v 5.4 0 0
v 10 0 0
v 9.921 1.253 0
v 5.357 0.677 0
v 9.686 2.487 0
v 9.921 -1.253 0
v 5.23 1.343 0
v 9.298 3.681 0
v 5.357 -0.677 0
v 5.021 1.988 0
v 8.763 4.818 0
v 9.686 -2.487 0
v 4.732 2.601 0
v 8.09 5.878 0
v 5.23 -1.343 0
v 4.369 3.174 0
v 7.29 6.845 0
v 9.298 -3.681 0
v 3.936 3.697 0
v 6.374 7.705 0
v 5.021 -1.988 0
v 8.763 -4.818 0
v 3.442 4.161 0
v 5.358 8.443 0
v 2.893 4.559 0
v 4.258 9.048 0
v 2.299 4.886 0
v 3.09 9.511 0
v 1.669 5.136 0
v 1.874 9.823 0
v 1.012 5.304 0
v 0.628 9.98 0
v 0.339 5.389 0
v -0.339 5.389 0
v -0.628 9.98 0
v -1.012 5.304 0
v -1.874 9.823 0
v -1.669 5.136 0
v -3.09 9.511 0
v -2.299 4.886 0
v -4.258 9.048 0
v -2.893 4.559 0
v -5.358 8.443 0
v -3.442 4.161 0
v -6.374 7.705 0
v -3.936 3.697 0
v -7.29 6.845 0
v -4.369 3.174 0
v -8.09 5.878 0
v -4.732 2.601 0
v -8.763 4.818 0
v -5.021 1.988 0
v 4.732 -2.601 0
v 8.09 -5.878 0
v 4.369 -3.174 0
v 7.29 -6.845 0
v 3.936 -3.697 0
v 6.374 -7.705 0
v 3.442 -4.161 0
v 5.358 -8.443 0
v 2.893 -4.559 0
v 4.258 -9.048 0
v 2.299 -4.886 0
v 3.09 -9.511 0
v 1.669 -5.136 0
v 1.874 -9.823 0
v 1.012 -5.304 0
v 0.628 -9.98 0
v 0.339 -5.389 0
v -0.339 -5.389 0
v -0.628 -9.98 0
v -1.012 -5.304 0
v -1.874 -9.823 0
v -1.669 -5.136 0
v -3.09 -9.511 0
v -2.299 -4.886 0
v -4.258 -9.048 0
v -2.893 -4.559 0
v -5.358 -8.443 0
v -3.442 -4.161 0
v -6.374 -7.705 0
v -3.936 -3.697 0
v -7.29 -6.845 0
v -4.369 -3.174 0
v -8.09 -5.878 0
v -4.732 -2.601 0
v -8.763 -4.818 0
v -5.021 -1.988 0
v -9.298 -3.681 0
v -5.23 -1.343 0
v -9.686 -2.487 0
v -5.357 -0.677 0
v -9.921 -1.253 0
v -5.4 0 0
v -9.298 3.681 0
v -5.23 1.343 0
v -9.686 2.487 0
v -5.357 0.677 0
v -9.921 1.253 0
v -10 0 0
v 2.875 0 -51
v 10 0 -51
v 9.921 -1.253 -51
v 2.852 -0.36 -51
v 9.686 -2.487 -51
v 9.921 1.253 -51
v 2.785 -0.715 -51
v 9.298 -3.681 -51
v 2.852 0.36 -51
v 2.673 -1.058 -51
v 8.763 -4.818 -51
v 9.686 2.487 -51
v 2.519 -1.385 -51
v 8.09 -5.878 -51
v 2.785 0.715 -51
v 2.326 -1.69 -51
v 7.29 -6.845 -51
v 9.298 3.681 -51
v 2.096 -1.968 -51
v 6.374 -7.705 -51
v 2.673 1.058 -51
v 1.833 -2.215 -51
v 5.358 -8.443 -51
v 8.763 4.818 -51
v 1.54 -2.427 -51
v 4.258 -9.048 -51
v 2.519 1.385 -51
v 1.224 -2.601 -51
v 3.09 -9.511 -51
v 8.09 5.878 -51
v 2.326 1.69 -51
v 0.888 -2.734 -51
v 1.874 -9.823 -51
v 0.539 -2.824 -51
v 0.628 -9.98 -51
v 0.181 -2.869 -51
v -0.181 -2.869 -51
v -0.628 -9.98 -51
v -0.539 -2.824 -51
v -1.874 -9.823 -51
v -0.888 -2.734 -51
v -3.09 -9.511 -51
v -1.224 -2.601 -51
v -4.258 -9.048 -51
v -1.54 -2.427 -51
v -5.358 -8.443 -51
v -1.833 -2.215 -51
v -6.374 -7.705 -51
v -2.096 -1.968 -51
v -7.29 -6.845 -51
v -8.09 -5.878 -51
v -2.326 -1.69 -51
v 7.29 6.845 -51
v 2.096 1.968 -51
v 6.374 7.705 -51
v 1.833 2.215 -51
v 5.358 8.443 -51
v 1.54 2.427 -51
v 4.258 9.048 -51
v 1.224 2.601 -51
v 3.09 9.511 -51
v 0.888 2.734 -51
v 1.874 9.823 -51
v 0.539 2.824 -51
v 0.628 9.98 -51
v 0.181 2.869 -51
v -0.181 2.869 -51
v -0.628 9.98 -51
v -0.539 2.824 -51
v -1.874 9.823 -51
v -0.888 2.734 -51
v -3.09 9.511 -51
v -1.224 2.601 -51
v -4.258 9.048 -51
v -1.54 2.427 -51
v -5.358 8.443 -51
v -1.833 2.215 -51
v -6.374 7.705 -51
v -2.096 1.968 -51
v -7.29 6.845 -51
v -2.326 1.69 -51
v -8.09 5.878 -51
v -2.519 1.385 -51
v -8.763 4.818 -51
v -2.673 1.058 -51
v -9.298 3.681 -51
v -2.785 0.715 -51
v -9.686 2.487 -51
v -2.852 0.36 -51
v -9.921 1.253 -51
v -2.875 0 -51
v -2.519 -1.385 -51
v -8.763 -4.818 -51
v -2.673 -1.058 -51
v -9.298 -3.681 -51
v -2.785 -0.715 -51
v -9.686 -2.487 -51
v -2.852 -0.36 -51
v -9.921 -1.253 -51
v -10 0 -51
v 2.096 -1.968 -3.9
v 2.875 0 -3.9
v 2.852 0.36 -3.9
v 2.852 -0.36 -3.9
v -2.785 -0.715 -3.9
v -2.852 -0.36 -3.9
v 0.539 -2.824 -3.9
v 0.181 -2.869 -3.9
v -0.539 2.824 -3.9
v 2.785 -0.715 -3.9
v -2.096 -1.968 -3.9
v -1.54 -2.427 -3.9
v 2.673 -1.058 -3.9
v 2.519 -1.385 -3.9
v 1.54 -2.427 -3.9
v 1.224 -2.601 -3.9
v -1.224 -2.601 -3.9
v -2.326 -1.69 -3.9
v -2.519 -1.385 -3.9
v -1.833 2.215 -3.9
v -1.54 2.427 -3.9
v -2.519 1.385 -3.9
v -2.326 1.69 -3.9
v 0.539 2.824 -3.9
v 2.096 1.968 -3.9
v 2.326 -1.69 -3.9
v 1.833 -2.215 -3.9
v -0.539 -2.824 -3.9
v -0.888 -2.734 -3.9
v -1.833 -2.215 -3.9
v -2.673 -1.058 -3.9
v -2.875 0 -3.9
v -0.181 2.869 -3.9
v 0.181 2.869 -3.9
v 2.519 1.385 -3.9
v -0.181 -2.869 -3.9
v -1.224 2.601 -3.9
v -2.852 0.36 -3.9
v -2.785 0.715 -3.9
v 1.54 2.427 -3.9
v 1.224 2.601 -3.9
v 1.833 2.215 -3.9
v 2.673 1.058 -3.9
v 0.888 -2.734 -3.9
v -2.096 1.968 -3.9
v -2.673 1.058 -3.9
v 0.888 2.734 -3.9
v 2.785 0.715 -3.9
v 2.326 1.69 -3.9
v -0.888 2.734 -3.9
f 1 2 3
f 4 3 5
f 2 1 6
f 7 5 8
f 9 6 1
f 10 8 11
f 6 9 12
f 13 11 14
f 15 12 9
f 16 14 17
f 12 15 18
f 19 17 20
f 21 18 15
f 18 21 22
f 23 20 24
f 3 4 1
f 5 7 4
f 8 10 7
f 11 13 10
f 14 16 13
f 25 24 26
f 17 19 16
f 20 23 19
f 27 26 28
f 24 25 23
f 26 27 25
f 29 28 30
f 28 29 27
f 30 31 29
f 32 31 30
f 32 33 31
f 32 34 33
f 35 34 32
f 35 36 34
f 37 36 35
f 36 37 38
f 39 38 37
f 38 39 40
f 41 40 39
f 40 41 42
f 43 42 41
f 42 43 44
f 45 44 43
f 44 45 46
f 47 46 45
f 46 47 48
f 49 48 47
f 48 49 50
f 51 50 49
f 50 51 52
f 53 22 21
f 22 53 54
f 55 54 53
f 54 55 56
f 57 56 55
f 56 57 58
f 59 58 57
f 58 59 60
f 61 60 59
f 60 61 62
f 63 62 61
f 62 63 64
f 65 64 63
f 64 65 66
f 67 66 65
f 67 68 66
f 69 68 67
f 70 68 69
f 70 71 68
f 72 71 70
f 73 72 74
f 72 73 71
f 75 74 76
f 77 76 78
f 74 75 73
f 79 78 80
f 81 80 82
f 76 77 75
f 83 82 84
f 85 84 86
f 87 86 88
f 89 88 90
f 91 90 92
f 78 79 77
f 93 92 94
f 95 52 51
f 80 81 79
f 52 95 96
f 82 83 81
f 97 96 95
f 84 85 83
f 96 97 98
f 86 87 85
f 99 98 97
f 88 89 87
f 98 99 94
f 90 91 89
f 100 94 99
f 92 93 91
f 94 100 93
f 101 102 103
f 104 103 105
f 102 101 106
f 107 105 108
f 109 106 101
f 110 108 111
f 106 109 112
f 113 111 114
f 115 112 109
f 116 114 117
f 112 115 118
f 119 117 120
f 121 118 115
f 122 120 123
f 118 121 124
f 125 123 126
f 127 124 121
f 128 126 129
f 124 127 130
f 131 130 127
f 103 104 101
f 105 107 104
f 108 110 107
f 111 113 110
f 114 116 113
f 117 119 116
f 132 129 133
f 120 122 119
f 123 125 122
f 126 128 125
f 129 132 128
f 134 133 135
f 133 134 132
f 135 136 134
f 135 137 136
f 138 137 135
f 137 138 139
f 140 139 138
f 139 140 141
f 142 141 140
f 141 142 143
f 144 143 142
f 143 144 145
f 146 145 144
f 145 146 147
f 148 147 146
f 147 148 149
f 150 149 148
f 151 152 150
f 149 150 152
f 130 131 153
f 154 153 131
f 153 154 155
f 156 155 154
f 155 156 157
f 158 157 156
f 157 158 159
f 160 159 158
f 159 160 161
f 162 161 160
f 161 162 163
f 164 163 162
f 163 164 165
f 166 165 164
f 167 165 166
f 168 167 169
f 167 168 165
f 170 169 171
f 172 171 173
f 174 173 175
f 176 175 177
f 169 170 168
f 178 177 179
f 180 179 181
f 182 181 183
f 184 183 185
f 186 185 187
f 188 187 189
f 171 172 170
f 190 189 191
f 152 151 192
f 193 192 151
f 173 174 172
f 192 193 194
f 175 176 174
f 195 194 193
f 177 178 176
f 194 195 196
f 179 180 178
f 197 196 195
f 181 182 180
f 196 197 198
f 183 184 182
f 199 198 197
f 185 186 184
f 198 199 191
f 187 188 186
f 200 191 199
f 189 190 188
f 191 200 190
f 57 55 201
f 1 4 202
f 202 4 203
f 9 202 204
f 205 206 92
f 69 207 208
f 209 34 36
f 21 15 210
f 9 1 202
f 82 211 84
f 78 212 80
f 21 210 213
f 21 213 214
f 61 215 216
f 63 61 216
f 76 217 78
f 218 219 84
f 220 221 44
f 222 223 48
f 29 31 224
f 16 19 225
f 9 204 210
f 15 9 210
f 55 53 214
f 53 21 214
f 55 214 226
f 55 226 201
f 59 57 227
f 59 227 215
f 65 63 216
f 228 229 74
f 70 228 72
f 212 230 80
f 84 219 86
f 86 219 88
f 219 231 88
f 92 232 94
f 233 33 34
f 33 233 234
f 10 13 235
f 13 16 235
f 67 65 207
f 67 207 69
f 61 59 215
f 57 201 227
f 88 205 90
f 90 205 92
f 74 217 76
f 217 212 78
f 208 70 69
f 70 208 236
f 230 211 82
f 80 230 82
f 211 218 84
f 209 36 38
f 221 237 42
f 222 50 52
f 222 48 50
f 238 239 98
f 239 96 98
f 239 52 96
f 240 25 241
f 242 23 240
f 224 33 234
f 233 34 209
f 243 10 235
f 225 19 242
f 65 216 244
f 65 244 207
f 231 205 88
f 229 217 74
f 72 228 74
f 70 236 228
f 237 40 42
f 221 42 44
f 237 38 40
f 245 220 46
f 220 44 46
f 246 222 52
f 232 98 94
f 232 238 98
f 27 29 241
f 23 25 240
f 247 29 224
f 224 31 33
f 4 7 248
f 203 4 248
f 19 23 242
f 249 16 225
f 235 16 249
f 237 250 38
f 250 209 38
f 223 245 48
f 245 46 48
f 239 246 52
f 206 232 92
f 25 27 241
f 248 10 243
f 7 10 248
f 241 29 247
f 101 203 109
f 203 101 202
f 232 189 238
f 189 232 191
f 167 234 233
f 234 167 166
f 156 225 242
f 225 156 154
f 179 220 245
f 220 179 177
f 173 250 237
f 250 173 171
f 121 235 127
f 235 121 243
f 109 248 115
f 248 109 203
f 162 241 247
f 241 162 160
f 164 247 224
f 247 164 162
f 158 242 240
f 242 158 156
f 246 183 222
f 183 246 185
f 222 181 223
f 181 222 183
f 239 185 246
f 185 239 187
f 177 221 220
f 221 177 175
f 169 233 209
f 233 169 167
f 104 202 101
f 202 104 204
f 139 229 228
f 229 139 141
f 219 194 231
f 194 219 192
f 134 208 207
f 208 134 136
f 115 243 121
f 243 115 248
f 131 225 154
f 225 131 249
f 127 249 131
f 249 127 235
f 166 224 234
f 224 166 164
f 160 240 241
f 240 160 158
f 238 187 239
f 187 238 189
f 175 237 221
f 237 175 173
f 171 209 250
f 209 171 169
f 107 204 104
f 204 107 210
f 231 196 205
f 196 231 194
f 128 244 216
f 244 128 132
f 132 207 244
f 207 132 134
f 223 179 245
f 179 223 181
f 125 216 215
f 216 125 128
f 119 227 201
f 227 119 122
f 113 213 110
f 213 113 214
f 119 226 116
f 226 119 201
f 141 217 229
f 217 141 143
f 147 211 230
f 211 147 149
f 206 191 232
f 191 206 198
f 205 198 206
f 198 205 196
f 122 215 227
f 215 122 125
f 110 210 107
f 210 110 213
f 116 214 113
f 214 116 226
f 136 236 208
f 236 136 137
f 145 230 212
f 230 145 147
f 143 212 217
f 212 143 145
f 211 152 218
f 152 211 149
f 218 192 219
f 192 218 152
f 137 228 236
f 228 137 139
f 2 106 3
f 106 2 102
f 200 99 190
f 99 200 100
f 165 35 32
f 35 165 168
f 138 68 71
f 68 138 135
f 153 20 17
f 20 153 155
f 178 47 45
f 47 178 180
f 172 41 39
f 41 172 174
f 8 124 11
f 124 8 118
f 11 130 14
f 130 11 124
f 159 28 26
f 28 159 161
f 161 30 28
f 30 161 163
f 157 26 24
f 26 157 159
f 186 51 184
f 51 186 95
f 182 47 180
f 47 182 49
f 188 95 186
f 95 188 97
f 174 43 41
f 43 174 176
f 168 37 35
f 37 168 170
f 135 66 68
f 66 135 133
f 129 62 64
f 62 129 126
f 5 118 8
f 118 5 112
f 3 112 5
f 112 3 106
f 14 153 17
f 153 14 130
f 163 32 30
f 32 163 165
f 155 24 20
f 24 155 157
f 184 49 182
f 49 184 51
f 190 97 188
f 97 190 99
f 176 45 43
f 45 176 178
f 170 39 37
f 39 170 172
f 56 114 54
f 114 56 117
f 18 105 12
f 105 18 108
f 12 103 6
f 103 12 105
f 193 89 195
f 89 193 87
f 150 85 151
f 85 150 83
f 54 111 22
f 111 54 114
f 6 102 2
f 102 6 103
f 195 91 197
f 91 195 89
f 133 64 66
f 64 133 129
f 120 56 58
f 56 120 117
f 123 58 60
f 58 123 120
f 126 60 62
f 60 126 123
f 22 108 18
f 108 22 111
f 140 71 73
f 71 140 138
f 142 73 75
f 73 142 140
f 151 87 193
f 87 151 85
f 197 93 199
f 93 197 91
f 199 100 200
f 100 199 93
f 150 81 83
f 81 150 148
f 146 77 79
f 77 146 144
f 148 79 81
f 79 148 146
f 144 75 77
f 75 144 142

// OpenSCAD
$fn = 50;


difference() {
	union() {
		translate(v = [0, 0, -51.0000000000]) {
			cylinder(h = 51, r = 10.0000000000);
		}
	}
	union() {
		translate(v = [0, 0, 0]) {
			rotate(a = [0, 0, 0]) {
				difference() {
					union() {
						#translate(v = [0, 0, -51.0000000000]) {
							cylinder(h = 51, r = 2.6000000000);
						}
						#translate(v = [0, 0, -3.9000000000]) {
							cylinder(h = 3.9000000000, r1 = 2.8750000000, r2 = 5.4000000000);
						}
						#translate(v = [0, 0, -51.0000000000]) {
							cylinder(h = 51, r = 2.8750000000);
						}
						#translate(v = [0, 0, -51.0000000000]) {
							cylinder(h = 51, r = 2.6000000000);
						}
					}
					union();
				}
			}
		}
	}
}
